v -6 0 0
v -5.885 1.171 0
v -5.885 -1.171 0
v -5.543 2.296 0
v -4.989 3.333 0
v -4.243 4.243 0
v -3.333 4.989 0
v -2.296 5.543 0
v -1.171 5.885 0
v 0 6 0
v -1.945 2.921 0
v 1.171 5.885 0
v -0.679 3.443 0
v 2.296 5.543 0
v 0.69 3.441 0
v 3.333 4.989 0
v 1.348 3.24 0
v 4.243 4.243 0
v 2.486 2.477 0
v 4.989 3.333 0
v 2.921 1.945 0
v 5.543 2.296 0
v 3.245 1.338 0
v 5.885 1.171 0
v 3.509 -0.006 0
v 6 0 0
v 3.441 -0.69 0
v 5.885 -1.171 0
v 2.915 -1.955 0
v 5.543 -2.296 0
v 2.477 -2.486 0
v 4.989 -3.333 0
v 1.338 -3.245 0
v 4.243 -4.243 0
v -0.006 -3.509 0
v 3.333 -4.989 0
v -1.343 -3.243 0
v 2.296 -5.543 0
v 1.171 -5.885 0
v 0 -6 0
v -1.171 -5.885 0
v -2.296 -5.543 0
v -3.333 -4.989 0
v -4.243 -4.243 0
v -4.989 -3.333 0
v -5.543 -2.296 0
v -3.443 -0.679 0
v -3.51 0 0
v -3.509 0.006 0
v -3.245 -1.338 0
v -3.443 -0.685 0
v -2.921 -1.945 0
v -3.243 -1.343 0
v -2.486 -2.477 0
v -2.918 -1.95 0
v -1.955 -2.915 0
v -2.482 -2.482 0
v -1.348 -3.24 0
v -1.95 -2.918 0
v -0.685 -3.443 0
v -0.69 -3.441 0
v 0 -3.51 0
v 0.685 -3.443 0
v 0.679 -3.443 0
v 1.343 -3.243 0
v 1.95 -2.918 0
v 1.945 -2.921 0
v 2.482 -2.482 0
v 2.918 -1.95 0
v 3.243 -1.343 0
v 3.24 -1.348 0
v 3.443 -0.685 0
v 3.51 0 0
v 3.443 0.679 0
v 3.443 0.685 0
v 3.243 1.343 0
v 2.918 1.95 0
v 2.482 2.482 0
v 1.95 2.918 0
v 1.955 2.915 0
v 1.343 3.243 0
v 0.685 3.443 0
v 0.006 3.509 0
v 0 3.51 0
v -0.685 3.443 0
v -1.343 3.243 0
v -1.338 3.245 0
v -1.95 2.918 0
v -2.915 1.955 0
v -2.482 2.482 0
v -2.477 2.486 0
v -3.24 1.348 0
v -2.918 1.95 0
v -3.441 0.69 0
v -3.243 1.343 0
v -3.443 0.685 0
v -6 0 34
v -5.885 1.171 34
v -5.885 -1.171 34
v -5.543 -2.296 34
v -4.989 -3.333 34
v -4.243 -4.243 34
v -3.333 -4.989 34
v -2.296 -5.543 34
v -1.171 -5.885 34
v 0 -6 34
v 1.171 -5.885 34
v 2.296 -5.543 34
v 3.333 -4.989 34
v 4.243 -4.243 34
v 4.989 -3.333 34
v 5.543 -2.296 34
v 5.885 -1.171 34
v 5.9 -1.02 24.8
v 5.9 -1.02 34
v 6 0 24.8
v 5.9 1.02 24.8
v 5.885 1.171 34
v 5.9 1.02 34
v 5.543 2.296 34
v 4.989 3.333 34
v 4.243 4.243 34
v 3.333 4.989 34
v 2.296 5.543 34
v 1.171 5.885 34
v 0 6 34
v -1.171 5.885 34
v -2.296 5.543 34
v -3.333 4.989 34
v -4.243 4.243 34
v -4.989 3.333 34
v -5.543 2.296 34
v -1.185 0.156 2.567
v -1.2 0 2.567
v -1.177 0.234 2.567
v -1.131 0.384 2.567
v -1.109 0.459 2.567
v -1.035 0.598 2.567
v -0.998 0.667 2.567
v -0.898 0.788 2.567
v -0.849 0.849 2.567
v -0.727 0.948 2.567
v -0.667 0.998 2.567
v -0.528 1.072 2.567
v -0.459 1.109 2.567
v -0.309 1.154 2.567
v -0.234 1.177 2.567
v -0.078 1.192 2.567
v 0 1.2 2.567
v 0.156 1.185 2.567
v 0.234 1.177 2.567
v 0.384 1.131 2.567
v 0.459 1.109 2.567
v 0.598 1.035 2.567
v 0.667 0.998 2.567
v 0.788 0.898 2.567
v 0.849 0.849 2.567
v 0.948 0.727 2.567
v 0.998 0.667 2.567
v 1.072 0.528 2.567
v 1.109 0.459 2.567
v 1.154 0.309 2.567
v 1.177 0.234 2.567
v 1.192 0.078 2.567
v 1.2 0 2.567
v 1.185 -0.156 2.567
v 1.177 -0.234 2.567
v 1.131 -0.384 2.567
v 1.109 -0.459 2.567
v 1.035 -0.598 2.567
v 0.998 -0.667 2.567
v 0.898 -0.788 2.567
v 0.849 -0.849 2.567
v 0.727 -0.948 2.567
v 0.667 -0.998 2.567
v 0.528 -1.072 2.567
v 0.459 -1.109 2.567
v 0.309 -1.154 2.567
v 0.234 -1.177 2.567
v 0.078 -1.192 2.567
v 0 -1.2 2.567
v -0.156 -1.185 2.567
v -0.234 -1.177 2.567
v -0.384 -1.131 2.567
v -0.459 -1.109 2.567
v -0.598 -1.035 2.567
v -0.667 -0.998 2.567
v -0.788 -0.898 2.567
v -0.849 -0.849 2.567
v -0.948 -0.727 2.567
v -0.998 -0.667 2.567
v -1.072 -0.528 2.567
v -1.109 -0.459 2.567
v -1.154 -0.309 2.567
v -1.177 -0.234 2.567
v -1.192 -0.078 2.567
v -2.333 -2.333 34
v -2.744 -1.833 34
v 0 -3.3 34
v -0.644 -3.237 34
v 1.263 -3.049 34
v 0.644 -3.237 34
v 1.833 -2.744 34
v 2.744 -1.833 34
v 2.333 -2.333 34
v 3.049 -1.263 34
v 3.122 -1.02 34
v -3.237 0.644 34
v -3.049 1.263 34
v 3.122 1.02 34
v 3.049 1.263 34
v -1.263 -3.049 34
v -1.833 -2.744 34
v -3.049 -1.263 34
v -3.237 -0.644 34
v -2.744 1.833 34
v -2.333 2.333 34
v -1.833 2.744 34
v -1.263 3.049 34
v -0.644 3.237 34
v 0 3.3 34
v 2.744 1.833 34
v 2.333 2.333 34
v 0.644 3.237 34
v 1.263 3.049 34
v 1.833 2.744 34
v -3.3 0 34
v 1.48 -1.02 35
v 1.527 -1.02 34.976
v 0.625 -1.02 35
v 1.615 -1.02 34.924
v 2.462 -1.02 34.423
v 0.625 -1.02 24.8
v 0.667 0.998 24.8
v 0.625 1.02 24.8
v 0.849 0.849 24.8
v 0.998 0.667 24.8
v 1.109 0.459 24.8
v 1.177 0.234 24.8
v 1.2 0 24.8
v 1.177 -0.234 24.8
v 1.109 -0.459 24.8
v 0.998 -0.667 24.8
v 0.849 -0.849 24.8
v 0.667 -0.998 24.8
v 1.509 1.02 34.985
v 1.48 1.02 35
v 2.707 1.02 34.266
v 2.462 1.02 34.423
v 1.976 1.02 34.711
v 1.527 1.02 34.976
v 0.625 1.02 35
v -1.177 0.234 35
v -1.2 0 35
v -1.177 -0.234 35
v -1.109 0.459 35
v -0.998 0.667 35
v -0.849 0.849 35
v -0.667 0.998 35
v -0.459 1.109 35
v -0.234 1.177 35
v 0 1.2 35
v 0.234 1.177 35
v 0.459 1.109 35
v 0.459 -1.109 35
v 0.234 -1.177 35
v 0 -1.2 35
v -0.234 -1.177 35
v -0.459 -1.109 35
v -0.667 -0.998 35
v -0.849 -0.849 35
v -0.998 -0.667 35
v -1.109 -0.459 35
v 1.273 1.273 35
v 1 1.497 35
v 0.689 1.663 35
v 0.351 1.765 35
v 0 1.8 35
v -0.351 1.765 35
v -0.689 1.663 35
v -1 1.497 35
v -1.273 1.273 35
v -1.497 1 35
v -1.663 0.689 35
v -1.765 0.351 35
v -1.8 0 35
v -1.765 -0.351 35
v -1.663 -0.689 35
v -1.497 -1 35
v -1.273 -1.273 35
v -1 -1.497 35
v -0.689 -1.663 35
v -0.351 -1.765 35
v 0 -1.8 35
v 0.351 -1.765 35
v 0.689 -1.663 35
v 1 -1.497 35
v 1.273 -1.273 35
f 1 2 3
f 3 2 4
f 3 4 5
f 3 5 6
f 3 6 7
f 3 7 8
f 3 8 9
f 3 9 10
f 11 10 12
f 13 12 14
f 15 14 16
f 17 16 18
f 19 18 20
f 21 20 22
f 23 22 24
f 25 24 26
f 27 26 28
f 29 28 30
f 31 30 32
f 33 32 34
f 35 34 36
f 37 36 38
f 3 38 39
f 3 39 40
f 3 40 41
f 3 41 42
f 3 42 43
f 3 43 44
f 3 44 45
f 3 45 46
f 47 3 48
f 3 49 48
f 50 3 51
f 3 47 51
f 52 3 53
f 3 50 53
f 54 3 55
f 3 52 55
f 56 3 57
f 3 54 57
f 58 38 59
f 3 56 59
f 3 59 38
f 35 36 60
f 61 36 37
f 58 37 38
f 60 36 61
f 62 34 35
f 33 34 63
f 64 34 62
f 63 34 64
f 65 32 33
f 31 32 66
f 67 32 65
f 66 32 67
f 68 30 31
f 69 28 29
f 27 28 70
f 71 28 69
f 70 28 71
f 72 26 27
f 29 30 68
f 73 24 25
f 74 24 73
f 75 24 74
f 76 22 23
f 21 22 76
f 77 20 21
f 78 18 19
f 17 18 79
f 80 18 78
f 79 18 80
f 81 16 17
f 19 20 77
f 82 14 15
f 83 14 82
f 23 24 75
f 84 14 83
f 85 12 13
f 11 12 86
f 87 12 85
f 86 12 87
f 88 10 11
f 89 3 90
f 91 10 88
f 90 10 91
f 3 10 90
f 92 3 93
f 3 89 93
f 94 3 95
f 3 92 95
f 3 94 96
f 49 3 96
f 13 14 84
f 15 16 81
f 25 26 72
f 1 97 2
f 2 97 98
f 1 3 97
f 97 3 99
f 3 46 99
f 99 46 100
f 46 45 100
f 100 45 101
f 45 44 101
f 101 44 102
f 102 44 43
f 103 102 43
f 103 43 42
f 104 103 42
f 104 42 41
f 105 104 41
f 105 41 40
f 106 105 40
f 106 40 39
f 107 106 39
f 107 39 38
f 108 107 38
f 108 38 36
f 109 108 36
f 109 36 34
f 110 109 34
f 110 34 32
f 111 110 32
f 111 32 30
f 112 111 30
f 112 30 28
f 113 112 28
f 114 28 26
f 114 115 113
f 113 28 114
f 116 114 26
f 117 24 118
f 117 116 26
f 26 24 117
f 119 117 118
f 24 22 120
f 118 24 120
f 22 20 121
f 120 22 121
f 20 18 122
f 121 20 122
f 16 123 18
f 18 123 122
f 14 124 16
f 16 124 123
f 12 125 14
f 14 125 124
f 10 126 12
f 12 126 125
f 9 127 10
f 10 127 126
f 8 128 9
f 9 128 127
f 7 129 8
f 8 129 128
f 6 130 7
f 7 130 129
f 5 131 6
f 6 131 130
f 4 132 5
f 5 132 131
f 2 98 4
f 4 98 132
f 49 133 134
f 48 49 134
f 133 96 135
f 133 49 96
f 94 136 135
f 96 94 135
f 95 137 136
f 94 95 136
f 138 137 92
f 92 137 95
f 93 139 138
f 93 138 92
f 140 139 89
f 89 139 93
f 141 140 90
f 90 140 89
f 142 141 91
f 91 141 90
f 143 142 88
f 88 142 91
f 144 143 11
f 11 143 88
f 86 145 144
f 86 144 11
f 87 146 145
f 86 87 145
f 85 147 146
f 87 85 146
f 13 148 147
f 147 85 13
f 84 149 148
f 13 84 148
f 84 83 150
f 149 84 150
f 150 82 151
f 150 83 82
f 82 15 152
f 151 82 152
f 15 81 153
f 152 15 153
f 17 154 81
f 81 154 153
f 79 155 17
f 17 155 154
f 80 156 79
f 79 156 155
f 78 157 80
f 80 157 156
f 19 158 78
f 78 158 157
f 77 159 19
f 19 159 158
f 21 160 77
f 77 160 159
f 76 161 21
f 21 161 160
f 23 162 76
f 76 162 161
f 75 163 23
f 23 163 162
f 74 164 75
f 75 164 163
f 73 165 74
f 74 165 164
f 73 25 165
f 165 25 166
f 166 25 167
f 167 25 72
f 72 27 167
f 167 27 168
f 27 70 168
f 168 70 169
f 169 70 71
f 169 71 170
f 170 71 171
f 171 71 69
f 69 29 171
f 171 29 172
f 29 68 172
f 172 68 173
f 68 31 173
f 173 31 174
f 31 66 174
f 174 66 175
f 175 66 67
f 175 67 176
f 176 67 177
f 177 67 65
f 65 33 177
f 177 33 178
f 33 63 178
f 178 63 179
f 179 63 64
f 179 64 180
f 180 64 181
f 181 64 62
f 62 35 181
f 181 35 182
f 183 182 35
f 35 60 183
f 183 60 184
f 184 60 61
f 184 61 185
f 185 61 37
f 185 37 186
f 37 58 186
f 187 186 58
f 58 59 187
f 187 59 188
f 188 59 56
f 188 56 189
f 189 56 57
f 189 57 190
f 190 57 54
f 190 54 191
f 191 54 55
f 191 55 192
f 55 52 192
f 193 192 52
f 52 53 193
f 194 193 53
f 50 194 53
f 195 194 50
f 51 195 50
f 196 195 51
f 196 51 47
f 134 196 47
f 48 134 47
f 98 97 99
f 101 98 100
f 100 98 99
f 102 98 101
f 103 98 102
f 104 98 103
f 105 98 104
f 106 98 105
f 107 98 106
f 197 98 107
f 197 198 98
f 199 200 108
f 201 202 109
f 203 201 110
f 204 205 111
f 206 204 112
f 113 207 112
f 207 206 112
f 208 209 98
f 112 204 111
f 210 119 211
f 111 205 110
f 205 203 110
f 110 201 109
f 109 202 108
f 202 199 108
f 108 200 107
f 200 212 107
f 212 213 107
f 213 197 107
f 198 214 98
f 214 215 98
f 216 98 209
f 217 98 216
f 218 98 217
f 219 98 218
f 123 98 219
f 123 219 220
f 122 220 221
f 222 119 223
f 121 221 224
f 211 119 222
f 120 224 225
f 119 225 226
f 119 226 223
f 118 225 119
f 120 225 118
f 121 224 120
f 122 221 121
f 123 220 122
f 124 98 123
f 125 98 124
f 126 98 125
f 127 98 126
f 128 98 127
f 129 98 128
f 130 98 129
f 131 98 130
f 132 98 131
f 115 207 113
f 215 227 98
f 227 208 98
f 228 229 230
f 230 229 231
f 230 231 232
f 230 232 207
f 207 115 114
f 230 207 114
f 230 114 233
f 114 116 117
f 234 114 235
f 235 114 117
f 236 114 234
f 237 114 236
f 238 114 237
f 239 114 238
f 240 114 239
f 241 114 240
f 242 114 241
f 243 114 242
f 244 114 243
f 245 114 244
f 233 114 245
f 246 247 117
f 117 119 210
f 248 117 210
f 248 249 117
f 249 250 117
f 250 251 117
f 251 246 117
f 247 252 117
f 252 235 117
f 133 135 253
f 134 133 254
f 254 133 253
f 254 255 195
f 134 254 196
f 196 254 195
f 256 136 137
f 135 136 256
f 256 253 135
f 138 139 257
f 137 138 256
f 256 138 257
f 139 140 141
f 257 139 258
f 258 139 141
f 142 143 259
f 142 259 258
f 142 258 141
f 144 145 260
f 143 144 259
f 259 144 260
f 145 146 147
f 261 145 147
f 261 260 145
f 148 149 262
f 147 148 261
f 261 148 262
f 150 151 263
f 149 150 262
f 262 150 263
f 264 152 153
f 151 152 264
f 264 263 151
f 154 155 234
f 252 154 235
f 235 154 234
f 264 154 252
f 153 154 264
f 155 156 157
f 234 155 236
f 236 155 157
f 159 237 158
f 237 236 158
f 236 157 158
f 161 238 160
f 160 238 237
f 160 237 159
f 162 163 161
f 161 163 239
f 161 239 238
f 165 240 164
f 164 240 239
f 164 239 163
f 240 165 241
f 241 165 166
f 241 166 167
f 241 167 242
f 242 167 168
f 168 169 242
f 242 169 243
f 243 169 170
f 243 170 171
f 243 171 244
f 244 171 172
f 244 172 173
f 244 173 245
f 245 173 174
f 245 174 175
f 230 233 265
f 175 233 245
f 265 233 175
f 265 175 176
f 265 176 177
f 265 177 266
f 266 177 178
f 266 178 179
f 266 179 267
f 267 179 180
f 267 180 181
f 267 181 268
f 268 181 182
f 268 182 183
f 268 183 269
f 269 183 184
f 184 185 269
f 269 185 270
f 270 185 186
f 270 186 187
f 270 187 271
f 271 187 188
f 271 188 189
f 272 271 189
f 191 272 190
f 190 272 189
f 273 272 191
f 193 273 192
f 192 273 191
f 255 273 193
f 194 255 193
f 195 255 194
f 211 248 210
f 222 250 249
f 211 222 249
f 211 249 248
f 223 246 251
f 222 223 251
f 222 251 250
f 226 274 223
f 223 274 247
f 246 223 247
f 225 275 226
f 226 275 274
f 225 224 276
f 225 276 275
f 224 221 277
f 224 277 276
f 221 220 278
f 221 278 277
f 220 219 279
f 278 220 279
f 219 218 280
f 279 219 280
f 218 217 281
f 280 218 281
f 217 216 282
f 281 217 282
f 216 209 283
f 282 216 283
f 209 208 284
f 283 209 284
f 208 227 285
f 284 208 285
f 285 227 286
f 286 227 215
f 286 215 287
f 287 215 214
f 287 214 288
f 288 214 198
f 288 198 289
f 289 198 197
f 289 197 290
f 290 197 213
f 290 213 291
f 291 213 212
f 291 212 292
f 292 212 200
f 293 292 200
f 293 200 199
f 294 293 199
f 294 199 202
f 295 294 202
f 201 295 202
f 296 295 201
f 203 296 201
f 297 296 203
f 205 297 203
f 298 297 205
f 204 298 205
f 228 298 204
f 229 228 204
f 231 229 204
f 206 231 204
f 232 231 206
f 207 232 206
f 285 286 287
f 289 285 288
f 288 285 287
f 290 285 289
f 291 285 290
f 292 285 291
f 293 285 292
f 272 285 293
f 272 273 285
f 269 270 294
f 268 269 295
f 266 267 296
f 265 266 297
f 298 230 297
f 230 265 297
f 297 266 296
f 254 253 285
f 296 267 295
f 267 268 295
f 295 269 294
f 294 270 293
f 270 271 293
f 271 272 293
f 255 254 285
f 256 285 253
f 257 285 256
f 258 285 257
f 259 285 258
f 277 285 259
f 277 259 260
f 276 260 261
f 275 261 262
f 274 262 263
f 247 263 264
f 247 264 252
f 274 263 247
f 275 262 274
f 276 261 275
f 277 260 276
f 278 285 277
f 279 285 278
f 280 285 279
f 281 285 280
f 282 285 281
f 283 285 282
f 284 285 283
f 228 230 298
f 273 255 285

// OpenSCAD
$fn=32;


difference() {
	difference() {
		union() {
			difference() {
				cylinder(h = 34.0000000000, r = 6.0000000000);
				translate(v = [0, 0, -0.1000000000]) {
					cylinder(r1 = 3.6000000000, r2 = 0.9000000000, h = 3.0000000000);
				}
			}
			translate(v = [0, 0, 34.0000000000]) {
				cylinder(r1 = 3.3000000000, r2 = 1.8000000000, h = 1.0000000000);
			}
		}
		cylinder(h = 36.0000000000, r = 1.2000000000);
	}
	translate(v = [0, -1.0200000000, 0]) {
		translate(v = [0, 0, 24.8000000000]) {
			cube(size = [7.0000000000, 2.0400000000, 11.2000000000]);
		}
	}
}
